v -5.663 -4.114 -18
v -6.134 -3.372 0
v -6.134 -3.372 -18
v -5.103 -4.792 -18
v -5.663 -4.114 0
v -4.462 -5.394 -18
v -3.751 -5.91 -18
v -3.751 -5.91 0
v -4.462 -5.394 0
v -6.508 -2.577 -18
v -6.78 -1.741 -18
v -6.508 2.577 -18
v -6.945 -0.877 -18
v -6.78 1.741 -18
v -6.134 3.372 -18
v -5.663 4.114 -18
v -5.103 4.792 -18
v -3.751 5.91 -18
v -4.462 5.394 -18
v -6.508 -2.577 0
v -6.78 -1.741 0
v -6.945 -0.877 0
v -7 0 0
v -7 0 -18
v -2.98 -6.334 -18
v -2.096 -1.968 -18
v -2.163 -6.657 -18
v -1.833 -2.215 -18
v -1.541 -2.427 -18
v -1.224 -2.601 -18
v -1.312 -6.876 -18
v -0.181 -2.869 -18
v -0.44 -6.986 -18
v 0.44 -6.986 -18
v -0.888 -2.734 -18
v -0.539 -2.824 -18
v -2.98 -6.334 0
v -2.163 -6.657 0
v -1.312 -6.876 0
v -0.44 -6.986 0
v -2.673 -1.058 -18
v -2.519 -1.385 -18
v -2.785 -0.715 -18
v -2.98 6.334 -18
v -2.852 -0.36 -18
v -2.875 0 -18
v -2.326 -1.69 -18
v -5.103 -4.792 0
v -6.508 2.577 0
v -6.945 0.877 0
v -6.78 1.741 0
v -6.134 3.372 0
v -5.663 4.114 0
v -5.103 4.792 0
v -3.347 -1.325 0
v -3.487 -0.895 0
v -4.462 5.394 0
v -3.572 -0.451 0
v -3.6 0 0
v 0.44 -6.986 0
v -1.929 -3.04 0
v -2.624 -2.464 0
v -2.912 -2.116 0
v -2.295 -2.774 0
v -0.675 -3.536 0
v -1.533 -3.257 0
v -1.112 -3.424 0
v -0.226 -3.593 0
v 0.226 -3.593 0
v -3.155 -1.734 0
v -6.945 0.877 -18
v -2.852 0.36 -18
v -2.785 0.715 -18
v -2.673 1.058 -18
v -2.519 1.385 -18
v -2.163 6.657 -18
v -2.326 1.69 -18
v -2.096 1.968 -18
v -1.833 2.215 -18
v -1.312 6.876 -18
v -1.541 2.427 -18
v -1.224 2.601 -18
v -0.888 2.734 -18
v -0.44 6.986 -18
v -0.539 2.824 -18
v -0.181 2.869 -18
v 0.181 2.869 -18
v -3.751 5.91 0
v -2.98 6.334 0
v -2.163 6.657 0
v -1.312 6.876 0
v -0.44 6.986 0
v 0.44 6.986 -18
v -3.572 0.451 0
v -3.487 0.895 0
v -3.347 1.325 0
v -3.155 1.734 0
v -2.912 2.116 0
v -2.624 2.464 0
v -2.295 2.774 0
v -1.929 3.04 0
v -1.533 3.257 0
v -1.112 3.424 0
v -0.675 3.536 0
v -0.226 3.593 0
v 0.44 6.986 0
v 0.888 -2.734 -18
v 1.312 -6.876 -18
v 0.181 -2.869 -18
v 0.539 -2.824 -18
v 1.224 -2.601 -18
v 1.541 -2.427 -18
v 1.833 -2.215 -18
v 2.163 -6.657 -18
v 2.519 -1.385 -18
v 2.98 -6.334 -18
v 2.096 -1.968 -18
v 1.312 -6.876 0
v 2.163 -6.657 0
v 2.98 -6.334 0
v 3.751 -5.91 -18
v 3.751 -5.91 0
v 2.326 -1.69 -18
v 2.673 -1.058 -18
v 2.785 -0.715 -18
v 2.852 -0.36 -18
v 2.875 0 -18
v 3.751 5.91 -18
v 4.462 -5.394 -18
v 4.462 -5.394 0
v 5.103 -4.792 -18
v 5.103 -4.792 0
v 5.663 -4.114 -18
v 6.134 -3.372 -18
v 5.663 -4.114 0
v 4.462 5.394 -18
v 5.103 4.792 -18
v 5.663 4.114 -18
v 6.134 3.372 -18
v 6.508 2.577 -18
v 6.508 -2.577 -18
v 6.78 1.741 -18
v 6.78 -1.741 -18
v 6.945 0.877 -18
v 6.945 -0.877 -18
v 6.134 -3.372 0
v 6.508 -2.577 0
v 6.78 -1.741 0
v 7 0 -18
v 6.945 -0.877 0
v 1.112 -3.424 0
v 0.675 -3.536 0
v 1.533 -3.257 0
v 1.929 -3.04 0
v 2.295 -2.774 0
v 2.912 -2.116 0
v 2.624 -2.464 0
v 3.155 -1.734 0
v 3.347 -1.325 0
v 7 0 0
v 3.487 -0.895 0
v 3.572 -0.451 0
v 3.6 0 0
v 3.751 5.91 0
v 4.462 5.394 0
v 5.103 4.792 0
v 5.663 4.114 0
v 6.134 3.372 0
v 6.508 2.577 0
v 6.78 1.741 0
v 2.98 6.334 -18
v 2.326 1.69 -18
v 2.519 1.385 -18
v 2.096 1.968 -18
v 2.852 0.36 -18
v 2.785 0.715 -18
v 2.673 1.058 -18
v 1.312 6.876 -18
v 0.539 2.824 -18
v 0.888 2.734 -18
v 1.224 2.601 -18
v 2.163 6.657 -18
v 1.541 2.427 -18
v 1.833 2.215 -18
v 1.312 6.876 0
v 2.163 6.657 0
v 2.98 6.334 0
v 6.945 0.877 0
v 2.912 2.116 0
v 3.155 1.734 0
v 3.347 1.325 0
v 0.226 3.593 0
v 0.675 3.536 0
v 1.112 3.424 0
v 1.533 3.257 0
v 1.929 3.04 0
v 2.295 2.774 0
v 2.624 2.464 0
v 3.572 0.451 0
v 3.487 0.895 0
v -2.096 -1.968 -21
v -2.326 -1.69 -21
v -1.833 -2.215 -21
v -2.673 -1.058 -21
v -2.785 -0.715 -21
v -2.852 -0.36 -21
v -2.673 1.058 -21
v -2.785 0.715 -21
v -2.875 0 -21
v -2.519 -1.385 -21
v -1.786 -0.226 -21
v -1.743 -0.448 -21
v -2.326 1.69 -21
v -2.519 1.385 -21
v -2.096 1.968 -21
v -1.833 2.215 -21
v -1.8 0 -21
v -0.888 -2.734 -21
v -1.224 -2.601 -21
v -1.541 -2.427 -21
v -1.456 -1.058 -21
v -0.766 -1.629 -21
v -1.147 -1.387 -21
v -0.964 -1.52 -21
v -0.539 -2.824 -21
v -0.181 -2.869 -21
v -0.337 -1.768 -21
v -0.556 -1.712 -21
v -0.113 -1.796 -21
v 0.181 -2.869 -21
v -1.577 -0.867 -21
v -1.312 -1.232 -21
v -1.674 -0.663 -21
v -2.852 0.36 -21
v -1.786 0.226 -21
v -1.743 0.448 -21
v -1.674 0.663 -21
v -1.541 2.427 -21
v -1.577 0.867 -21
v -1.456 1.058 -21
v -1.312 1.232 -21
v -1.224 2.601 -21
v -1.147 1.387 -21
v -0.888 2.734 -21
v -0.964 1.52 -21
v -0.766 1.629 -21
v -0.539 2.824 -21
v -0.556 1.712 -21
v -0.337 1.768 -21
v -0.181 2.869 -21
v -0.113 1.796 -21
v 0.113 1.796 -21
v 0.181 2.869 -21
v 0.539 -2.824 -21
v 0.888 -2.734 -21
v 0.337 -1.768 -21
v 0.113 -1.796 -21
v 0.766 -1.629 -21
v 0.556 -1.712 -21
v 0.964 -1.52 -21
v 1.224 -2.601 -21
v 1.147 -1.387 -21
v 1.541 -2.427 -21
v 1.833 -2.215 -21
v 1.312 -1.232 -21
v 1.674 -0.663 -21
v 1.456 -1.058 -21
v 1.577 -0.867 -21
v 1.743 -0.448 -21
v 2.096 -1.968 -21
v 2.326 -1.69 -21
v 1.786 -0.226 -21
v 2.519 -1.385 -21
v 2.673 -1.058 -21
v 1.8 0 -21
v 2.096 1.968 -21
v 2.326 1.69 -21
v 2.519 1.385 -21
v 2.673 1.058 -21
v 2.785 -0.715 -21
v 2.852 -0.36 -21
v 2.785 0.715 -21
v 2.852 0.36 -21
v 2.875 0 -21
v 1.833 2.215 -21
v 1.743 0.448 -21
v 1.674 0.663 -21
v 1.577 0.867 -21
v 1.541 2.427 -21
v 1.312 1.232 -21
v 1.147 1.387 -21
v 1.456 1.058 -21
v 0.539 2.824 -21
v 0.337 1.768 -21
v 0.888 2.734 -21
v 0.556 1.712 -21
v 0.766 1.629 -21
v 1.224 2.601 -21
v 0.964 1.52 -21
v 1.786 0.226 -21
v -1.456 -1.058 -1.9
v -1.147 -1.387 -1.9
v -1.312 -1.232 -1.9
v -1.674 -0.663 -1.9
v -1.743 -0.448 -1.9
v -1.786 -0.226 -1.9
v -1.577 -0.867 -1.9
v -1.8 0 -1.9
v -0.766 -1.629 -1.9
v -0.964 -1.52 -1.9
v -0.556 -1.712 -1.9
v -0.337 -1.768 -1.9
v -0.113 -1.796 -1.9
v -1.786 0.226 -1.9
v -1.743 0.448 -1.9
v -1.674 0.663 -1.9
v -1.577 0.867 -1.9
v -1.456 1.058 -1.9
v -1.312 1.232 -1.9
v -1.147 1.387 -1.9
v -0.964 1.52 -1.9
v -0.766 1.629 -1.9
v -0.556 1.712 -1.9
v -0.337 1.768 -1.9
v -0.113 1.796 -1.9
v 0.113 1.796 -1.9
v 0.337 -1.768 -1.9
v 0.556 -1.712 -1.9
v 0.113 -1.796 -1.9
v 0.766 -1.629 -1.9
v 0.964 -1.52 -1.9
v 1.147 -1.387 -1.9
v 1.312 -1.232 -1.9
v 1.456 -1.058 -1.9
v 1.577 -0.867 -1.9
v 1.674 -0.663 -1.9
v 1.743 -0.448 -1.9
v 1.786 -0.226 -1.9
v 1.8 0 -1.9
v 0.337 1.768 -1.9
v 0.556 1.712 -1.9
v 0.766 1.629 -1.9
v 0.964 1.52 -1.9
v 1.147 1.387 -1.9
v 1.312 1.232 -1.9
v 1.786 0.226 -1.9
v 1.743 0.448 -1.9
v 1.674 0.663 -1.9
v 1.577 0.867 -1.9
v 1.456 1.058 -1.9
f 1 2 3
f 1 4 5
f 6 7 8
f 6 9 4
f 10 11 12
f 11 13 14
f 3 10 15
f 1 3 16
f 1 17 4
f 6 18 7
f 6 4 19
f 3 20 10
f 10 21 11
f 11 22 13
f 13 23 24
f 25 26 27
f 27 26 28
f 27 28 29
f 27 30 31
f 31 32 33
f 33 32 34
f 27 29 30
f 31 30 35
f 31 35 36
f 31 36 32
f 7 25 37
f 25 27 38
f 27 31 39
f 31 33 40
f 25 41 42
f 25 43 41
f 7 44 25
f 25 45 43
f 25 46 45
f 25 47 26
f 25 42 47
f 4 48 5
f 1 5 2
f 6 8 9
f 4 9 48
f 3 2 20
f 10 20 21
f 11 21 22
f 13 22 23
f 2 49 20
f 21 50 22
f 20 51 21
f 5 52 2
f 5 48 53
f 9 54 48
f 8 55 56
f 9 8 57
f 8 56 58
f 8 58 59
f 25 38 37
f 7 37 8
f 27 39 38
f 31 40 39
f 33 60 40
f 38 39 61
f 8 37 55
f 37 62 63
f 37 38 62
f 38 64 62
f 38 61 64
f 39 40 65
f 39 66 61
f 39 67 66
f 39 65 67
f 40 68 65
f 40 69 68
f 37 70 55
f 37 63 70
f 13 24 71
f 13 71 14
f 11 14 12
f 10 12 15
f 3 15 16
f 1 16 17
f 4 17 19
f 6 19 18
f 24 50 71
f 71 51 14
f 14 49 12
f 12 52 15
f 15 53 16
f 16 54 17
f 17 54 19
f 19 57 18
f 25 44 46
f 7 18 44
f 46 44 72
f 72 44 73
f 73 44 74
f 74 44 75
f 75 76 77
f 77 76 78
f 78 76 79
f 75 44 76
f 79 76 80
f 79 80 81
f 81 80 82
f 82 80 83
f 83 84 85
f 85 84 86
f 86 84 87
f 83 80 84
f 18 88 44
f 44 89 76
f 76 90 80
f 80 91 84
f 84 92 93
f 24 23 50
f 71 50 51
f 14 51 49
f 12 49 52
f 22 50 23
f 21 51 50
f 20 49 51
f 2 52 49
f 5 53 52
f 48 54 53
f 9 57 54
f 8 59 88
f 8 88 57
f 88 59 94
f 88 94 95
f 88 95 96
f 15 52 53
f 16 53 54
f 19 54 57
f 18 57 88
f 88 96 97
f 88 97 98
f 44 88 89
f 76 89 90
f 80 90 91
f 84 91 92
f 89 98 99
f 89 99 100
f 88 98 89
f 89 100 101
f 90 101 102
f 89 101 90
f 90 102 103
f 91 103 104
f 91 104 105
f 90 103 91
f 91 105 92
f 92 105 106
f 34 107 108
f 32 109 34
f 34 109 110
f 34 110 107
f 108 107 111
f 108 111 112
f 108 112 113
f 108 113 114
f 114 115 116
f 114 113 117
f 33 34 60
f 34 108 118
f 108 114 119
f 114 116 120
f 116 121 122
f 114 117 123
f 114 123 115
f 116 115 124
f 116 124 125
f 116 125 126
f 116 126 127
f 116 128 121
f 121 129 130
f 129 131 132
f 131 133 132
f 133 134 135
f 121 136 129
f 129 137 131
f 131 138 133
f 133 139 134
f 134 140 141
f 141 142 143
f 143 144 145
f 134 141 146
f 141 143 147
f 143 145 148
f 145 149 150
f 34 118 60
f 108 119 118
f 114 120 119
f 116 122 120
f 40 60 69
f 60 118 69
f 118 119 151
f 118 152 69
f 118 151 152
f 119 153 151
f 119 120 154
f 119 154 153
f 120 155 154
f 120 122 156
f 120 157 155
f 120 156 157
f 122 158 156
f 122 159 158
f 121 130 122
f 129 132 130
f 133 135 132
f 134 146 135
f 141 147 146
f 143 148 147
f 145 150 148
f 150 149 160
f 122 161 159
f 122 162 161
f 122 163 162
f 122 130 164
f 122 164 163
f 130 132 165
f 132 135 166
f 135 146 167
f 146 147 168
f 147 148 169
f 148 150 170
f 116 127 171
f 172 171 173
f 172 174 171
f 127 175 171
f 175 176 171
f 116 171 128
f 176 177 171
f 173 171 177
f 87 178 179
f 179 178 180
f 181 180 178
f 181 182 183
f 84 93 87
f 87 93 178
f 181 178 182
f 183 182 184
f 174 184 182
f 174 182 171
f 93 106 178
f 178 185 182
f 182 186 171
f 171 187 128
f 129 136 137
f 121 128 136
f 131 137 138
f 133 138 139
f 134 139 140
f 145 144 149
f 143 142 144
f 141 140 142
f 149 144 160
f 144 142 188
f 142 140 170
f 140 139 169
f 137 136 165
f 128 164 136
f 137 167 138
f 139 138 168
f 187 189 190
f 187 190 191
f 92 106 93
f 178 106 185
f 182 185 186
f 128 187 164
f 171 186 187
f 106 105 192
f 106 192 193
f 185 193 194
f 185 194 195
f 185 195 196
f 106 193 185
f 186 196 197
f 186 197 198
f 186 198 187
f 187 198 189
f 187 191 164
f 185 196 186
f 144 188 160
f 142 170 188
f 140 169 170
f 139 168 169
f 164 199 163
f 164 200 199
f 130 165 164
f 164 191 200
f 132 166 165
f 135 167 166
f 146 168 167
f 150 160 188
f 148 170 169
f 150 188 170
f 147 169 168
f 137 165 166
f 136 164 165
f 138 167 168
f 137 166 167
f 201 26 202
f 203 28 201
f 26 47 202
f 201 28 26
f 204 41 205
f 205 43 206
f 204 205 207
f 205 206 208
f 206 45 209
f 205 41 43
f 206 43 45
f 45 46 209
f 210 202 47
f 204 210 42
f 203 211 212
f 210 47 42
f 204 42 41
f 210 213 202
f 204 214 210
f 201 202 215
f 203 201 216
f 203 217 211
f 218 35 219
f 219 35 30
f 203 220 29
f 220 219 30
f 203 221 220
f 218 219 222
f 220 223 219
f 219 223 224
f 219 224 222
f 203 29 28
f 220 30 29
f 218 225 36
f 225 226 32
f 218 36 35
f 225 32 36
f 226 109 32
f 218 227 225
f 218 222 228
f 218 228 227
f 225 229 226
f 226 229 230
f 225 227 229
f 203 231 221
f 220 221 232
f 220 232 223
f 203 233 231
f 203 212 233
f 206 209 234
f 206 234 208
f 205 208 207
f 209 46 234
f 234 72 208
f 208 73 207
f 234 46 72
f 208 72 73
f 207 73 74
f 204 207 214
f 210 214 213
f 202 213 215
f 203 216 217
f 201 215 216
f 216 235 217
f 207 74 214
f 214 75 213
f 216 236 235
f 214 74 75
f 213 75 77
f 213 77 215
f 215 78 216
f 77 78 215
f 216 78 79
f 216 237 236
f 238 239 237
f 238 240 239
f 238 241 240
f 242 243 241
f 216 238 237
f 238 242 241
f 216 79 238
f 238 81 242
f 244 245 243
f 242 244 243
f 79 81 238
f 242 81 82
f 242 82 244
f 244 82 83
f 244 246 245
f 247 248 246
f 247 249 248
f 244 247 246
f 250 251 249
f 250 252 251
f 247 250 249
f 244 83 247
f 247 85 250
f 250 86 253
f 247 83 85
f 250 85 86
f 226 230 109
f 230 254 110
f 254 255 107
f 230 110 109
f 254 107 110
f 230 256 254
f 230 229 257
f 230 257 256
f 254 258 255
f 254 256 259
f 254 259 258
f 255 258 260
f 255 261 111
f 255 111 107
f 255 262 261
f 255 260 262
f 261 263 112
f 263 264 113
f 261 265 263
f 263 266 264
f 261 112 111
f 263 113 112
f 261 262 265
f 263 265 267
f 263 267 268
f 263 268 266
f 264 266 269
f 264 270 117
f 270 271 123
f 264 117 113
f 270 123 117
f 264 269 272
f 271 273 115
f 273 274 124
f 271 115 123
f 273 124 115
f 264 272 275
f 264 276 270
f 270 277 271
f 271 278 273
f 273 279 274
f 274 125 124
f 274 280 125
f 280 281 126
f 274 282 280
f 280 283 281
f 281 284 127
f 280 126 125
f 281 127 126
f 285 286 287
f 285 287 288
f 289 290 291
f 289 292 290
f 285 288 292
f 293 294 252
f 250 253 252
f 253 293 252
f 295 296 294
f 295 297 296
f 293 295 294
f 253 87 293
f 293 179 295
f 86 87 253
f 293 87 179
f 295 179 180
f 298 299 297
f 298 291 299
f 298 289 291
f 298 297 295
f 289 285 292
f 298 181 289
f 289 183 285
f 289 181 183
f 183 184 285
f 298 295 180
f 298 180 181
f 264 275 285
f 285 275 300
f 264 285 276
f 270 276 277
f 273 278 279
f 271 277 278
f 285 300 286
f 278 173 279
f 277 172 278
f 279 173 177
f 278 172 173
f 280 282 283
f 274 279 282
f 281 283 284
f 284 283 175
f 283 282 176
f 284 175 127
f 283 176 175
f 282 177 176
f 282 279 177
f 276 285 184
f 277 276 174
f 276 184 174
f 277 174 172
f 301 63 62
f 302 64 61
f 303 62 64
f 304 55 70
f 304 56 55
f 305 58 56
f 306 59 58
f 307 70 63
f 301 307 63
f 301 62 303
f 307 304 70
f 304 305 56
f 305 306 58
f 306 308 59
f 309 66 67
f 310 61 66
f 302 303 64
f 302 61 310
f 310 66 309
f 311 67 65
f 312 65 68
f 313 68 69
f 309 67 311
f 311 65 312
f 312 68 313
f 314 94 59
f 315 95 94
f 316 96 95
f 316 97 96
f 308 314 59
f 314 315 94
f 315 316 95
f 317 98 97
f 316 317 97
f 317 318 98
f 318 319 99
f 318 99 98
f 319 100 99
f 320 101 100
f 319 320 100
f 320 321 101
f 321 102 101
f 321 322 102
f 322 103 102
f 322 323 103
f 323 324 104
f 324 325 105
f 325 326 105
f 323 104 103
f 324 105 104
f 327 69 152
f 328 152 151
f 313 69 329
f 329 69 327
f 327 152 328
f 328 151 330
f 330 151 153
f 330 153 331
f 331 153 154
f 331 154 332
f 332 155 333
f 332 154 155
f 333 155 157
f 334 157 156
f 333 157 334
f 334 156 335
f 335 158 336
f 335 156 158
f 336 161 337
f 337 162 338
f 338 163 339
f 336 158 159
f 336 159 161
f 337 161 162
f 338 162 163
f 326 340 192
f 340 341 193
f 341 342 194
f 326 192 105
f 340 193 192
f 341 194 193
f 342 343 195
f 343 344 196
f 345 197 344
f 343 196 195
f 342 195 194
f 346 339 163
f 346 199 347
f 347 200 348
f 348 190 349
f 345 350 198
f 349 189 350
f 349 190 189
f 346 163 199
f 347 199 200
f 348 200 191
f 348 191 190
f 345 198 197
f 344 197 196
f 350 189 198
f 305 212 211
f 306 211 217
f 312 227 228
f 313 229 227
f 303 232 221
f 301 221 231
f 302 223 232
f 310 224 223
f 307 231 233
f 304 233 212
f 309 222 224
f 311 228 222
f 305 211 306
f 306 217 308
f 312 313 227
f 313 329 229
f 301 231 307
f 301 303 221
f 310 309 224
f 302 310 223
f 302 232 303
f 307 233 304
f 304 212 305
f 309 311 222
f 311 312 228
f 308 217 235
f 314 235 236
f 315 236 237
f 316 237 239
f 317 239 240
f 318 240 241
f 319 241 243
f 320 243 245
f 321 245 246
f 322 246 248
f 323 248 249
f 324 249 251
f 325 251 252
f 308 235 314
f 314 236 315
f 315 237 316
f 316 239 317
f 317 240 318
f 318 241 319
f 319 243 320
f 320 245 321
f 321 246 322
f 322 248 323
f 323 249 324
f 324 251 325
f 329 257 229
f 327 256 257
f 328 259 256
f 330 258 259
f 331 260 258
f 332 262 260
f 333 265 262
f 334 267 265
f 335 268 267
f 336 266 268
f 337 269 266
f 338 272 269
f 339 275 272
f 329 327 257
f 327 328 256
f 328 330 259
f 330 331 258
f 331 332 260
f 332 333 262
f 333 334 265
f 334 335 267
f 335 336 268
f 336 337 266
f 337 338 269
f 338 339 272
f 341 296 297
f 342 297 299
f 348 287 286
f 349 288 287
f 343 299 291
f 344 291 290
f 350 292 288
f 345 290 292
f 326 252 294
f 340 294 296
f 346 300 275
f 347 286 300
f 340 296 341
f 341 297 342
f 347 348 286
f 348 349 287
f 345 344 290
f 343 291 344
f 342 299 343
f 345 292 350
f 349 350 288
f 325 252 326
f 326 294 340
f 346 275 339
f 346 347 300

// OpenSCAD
$fn = 50;

difference() {
	union() {
		translate(v = [0, 0, -18.0]) {
			cylinder(h = 18, r = 7.0);
		}
		#translate(v = [0, 0, -21.0]) {
			cylinder(h = 21, r = 2.875);
		}
	}
	union() {
		translate(v = [0, 0, 0]) {
			rotate(a = [0, 0, 0]) {
				difference() {
					union() {
						translate(v = [0, 0, -21.0]) {
							cylinder(h = 21, r = 1.5);
						}
						translate(v = [0, 0, -1.9]) {
							cylinder(h = 1.9, r1 = 1.8, r2 = 3.6);
						}
						translate(v = [0, 0, -21.0]) {
							cylinder(h = 21, r = 1.8);
						}
						translate(v = [0, 0, -21.0]) {
							cylinder(h = 21, r = 1.5);
						}
					}
					union();
				}
			}
		}
	}
}
